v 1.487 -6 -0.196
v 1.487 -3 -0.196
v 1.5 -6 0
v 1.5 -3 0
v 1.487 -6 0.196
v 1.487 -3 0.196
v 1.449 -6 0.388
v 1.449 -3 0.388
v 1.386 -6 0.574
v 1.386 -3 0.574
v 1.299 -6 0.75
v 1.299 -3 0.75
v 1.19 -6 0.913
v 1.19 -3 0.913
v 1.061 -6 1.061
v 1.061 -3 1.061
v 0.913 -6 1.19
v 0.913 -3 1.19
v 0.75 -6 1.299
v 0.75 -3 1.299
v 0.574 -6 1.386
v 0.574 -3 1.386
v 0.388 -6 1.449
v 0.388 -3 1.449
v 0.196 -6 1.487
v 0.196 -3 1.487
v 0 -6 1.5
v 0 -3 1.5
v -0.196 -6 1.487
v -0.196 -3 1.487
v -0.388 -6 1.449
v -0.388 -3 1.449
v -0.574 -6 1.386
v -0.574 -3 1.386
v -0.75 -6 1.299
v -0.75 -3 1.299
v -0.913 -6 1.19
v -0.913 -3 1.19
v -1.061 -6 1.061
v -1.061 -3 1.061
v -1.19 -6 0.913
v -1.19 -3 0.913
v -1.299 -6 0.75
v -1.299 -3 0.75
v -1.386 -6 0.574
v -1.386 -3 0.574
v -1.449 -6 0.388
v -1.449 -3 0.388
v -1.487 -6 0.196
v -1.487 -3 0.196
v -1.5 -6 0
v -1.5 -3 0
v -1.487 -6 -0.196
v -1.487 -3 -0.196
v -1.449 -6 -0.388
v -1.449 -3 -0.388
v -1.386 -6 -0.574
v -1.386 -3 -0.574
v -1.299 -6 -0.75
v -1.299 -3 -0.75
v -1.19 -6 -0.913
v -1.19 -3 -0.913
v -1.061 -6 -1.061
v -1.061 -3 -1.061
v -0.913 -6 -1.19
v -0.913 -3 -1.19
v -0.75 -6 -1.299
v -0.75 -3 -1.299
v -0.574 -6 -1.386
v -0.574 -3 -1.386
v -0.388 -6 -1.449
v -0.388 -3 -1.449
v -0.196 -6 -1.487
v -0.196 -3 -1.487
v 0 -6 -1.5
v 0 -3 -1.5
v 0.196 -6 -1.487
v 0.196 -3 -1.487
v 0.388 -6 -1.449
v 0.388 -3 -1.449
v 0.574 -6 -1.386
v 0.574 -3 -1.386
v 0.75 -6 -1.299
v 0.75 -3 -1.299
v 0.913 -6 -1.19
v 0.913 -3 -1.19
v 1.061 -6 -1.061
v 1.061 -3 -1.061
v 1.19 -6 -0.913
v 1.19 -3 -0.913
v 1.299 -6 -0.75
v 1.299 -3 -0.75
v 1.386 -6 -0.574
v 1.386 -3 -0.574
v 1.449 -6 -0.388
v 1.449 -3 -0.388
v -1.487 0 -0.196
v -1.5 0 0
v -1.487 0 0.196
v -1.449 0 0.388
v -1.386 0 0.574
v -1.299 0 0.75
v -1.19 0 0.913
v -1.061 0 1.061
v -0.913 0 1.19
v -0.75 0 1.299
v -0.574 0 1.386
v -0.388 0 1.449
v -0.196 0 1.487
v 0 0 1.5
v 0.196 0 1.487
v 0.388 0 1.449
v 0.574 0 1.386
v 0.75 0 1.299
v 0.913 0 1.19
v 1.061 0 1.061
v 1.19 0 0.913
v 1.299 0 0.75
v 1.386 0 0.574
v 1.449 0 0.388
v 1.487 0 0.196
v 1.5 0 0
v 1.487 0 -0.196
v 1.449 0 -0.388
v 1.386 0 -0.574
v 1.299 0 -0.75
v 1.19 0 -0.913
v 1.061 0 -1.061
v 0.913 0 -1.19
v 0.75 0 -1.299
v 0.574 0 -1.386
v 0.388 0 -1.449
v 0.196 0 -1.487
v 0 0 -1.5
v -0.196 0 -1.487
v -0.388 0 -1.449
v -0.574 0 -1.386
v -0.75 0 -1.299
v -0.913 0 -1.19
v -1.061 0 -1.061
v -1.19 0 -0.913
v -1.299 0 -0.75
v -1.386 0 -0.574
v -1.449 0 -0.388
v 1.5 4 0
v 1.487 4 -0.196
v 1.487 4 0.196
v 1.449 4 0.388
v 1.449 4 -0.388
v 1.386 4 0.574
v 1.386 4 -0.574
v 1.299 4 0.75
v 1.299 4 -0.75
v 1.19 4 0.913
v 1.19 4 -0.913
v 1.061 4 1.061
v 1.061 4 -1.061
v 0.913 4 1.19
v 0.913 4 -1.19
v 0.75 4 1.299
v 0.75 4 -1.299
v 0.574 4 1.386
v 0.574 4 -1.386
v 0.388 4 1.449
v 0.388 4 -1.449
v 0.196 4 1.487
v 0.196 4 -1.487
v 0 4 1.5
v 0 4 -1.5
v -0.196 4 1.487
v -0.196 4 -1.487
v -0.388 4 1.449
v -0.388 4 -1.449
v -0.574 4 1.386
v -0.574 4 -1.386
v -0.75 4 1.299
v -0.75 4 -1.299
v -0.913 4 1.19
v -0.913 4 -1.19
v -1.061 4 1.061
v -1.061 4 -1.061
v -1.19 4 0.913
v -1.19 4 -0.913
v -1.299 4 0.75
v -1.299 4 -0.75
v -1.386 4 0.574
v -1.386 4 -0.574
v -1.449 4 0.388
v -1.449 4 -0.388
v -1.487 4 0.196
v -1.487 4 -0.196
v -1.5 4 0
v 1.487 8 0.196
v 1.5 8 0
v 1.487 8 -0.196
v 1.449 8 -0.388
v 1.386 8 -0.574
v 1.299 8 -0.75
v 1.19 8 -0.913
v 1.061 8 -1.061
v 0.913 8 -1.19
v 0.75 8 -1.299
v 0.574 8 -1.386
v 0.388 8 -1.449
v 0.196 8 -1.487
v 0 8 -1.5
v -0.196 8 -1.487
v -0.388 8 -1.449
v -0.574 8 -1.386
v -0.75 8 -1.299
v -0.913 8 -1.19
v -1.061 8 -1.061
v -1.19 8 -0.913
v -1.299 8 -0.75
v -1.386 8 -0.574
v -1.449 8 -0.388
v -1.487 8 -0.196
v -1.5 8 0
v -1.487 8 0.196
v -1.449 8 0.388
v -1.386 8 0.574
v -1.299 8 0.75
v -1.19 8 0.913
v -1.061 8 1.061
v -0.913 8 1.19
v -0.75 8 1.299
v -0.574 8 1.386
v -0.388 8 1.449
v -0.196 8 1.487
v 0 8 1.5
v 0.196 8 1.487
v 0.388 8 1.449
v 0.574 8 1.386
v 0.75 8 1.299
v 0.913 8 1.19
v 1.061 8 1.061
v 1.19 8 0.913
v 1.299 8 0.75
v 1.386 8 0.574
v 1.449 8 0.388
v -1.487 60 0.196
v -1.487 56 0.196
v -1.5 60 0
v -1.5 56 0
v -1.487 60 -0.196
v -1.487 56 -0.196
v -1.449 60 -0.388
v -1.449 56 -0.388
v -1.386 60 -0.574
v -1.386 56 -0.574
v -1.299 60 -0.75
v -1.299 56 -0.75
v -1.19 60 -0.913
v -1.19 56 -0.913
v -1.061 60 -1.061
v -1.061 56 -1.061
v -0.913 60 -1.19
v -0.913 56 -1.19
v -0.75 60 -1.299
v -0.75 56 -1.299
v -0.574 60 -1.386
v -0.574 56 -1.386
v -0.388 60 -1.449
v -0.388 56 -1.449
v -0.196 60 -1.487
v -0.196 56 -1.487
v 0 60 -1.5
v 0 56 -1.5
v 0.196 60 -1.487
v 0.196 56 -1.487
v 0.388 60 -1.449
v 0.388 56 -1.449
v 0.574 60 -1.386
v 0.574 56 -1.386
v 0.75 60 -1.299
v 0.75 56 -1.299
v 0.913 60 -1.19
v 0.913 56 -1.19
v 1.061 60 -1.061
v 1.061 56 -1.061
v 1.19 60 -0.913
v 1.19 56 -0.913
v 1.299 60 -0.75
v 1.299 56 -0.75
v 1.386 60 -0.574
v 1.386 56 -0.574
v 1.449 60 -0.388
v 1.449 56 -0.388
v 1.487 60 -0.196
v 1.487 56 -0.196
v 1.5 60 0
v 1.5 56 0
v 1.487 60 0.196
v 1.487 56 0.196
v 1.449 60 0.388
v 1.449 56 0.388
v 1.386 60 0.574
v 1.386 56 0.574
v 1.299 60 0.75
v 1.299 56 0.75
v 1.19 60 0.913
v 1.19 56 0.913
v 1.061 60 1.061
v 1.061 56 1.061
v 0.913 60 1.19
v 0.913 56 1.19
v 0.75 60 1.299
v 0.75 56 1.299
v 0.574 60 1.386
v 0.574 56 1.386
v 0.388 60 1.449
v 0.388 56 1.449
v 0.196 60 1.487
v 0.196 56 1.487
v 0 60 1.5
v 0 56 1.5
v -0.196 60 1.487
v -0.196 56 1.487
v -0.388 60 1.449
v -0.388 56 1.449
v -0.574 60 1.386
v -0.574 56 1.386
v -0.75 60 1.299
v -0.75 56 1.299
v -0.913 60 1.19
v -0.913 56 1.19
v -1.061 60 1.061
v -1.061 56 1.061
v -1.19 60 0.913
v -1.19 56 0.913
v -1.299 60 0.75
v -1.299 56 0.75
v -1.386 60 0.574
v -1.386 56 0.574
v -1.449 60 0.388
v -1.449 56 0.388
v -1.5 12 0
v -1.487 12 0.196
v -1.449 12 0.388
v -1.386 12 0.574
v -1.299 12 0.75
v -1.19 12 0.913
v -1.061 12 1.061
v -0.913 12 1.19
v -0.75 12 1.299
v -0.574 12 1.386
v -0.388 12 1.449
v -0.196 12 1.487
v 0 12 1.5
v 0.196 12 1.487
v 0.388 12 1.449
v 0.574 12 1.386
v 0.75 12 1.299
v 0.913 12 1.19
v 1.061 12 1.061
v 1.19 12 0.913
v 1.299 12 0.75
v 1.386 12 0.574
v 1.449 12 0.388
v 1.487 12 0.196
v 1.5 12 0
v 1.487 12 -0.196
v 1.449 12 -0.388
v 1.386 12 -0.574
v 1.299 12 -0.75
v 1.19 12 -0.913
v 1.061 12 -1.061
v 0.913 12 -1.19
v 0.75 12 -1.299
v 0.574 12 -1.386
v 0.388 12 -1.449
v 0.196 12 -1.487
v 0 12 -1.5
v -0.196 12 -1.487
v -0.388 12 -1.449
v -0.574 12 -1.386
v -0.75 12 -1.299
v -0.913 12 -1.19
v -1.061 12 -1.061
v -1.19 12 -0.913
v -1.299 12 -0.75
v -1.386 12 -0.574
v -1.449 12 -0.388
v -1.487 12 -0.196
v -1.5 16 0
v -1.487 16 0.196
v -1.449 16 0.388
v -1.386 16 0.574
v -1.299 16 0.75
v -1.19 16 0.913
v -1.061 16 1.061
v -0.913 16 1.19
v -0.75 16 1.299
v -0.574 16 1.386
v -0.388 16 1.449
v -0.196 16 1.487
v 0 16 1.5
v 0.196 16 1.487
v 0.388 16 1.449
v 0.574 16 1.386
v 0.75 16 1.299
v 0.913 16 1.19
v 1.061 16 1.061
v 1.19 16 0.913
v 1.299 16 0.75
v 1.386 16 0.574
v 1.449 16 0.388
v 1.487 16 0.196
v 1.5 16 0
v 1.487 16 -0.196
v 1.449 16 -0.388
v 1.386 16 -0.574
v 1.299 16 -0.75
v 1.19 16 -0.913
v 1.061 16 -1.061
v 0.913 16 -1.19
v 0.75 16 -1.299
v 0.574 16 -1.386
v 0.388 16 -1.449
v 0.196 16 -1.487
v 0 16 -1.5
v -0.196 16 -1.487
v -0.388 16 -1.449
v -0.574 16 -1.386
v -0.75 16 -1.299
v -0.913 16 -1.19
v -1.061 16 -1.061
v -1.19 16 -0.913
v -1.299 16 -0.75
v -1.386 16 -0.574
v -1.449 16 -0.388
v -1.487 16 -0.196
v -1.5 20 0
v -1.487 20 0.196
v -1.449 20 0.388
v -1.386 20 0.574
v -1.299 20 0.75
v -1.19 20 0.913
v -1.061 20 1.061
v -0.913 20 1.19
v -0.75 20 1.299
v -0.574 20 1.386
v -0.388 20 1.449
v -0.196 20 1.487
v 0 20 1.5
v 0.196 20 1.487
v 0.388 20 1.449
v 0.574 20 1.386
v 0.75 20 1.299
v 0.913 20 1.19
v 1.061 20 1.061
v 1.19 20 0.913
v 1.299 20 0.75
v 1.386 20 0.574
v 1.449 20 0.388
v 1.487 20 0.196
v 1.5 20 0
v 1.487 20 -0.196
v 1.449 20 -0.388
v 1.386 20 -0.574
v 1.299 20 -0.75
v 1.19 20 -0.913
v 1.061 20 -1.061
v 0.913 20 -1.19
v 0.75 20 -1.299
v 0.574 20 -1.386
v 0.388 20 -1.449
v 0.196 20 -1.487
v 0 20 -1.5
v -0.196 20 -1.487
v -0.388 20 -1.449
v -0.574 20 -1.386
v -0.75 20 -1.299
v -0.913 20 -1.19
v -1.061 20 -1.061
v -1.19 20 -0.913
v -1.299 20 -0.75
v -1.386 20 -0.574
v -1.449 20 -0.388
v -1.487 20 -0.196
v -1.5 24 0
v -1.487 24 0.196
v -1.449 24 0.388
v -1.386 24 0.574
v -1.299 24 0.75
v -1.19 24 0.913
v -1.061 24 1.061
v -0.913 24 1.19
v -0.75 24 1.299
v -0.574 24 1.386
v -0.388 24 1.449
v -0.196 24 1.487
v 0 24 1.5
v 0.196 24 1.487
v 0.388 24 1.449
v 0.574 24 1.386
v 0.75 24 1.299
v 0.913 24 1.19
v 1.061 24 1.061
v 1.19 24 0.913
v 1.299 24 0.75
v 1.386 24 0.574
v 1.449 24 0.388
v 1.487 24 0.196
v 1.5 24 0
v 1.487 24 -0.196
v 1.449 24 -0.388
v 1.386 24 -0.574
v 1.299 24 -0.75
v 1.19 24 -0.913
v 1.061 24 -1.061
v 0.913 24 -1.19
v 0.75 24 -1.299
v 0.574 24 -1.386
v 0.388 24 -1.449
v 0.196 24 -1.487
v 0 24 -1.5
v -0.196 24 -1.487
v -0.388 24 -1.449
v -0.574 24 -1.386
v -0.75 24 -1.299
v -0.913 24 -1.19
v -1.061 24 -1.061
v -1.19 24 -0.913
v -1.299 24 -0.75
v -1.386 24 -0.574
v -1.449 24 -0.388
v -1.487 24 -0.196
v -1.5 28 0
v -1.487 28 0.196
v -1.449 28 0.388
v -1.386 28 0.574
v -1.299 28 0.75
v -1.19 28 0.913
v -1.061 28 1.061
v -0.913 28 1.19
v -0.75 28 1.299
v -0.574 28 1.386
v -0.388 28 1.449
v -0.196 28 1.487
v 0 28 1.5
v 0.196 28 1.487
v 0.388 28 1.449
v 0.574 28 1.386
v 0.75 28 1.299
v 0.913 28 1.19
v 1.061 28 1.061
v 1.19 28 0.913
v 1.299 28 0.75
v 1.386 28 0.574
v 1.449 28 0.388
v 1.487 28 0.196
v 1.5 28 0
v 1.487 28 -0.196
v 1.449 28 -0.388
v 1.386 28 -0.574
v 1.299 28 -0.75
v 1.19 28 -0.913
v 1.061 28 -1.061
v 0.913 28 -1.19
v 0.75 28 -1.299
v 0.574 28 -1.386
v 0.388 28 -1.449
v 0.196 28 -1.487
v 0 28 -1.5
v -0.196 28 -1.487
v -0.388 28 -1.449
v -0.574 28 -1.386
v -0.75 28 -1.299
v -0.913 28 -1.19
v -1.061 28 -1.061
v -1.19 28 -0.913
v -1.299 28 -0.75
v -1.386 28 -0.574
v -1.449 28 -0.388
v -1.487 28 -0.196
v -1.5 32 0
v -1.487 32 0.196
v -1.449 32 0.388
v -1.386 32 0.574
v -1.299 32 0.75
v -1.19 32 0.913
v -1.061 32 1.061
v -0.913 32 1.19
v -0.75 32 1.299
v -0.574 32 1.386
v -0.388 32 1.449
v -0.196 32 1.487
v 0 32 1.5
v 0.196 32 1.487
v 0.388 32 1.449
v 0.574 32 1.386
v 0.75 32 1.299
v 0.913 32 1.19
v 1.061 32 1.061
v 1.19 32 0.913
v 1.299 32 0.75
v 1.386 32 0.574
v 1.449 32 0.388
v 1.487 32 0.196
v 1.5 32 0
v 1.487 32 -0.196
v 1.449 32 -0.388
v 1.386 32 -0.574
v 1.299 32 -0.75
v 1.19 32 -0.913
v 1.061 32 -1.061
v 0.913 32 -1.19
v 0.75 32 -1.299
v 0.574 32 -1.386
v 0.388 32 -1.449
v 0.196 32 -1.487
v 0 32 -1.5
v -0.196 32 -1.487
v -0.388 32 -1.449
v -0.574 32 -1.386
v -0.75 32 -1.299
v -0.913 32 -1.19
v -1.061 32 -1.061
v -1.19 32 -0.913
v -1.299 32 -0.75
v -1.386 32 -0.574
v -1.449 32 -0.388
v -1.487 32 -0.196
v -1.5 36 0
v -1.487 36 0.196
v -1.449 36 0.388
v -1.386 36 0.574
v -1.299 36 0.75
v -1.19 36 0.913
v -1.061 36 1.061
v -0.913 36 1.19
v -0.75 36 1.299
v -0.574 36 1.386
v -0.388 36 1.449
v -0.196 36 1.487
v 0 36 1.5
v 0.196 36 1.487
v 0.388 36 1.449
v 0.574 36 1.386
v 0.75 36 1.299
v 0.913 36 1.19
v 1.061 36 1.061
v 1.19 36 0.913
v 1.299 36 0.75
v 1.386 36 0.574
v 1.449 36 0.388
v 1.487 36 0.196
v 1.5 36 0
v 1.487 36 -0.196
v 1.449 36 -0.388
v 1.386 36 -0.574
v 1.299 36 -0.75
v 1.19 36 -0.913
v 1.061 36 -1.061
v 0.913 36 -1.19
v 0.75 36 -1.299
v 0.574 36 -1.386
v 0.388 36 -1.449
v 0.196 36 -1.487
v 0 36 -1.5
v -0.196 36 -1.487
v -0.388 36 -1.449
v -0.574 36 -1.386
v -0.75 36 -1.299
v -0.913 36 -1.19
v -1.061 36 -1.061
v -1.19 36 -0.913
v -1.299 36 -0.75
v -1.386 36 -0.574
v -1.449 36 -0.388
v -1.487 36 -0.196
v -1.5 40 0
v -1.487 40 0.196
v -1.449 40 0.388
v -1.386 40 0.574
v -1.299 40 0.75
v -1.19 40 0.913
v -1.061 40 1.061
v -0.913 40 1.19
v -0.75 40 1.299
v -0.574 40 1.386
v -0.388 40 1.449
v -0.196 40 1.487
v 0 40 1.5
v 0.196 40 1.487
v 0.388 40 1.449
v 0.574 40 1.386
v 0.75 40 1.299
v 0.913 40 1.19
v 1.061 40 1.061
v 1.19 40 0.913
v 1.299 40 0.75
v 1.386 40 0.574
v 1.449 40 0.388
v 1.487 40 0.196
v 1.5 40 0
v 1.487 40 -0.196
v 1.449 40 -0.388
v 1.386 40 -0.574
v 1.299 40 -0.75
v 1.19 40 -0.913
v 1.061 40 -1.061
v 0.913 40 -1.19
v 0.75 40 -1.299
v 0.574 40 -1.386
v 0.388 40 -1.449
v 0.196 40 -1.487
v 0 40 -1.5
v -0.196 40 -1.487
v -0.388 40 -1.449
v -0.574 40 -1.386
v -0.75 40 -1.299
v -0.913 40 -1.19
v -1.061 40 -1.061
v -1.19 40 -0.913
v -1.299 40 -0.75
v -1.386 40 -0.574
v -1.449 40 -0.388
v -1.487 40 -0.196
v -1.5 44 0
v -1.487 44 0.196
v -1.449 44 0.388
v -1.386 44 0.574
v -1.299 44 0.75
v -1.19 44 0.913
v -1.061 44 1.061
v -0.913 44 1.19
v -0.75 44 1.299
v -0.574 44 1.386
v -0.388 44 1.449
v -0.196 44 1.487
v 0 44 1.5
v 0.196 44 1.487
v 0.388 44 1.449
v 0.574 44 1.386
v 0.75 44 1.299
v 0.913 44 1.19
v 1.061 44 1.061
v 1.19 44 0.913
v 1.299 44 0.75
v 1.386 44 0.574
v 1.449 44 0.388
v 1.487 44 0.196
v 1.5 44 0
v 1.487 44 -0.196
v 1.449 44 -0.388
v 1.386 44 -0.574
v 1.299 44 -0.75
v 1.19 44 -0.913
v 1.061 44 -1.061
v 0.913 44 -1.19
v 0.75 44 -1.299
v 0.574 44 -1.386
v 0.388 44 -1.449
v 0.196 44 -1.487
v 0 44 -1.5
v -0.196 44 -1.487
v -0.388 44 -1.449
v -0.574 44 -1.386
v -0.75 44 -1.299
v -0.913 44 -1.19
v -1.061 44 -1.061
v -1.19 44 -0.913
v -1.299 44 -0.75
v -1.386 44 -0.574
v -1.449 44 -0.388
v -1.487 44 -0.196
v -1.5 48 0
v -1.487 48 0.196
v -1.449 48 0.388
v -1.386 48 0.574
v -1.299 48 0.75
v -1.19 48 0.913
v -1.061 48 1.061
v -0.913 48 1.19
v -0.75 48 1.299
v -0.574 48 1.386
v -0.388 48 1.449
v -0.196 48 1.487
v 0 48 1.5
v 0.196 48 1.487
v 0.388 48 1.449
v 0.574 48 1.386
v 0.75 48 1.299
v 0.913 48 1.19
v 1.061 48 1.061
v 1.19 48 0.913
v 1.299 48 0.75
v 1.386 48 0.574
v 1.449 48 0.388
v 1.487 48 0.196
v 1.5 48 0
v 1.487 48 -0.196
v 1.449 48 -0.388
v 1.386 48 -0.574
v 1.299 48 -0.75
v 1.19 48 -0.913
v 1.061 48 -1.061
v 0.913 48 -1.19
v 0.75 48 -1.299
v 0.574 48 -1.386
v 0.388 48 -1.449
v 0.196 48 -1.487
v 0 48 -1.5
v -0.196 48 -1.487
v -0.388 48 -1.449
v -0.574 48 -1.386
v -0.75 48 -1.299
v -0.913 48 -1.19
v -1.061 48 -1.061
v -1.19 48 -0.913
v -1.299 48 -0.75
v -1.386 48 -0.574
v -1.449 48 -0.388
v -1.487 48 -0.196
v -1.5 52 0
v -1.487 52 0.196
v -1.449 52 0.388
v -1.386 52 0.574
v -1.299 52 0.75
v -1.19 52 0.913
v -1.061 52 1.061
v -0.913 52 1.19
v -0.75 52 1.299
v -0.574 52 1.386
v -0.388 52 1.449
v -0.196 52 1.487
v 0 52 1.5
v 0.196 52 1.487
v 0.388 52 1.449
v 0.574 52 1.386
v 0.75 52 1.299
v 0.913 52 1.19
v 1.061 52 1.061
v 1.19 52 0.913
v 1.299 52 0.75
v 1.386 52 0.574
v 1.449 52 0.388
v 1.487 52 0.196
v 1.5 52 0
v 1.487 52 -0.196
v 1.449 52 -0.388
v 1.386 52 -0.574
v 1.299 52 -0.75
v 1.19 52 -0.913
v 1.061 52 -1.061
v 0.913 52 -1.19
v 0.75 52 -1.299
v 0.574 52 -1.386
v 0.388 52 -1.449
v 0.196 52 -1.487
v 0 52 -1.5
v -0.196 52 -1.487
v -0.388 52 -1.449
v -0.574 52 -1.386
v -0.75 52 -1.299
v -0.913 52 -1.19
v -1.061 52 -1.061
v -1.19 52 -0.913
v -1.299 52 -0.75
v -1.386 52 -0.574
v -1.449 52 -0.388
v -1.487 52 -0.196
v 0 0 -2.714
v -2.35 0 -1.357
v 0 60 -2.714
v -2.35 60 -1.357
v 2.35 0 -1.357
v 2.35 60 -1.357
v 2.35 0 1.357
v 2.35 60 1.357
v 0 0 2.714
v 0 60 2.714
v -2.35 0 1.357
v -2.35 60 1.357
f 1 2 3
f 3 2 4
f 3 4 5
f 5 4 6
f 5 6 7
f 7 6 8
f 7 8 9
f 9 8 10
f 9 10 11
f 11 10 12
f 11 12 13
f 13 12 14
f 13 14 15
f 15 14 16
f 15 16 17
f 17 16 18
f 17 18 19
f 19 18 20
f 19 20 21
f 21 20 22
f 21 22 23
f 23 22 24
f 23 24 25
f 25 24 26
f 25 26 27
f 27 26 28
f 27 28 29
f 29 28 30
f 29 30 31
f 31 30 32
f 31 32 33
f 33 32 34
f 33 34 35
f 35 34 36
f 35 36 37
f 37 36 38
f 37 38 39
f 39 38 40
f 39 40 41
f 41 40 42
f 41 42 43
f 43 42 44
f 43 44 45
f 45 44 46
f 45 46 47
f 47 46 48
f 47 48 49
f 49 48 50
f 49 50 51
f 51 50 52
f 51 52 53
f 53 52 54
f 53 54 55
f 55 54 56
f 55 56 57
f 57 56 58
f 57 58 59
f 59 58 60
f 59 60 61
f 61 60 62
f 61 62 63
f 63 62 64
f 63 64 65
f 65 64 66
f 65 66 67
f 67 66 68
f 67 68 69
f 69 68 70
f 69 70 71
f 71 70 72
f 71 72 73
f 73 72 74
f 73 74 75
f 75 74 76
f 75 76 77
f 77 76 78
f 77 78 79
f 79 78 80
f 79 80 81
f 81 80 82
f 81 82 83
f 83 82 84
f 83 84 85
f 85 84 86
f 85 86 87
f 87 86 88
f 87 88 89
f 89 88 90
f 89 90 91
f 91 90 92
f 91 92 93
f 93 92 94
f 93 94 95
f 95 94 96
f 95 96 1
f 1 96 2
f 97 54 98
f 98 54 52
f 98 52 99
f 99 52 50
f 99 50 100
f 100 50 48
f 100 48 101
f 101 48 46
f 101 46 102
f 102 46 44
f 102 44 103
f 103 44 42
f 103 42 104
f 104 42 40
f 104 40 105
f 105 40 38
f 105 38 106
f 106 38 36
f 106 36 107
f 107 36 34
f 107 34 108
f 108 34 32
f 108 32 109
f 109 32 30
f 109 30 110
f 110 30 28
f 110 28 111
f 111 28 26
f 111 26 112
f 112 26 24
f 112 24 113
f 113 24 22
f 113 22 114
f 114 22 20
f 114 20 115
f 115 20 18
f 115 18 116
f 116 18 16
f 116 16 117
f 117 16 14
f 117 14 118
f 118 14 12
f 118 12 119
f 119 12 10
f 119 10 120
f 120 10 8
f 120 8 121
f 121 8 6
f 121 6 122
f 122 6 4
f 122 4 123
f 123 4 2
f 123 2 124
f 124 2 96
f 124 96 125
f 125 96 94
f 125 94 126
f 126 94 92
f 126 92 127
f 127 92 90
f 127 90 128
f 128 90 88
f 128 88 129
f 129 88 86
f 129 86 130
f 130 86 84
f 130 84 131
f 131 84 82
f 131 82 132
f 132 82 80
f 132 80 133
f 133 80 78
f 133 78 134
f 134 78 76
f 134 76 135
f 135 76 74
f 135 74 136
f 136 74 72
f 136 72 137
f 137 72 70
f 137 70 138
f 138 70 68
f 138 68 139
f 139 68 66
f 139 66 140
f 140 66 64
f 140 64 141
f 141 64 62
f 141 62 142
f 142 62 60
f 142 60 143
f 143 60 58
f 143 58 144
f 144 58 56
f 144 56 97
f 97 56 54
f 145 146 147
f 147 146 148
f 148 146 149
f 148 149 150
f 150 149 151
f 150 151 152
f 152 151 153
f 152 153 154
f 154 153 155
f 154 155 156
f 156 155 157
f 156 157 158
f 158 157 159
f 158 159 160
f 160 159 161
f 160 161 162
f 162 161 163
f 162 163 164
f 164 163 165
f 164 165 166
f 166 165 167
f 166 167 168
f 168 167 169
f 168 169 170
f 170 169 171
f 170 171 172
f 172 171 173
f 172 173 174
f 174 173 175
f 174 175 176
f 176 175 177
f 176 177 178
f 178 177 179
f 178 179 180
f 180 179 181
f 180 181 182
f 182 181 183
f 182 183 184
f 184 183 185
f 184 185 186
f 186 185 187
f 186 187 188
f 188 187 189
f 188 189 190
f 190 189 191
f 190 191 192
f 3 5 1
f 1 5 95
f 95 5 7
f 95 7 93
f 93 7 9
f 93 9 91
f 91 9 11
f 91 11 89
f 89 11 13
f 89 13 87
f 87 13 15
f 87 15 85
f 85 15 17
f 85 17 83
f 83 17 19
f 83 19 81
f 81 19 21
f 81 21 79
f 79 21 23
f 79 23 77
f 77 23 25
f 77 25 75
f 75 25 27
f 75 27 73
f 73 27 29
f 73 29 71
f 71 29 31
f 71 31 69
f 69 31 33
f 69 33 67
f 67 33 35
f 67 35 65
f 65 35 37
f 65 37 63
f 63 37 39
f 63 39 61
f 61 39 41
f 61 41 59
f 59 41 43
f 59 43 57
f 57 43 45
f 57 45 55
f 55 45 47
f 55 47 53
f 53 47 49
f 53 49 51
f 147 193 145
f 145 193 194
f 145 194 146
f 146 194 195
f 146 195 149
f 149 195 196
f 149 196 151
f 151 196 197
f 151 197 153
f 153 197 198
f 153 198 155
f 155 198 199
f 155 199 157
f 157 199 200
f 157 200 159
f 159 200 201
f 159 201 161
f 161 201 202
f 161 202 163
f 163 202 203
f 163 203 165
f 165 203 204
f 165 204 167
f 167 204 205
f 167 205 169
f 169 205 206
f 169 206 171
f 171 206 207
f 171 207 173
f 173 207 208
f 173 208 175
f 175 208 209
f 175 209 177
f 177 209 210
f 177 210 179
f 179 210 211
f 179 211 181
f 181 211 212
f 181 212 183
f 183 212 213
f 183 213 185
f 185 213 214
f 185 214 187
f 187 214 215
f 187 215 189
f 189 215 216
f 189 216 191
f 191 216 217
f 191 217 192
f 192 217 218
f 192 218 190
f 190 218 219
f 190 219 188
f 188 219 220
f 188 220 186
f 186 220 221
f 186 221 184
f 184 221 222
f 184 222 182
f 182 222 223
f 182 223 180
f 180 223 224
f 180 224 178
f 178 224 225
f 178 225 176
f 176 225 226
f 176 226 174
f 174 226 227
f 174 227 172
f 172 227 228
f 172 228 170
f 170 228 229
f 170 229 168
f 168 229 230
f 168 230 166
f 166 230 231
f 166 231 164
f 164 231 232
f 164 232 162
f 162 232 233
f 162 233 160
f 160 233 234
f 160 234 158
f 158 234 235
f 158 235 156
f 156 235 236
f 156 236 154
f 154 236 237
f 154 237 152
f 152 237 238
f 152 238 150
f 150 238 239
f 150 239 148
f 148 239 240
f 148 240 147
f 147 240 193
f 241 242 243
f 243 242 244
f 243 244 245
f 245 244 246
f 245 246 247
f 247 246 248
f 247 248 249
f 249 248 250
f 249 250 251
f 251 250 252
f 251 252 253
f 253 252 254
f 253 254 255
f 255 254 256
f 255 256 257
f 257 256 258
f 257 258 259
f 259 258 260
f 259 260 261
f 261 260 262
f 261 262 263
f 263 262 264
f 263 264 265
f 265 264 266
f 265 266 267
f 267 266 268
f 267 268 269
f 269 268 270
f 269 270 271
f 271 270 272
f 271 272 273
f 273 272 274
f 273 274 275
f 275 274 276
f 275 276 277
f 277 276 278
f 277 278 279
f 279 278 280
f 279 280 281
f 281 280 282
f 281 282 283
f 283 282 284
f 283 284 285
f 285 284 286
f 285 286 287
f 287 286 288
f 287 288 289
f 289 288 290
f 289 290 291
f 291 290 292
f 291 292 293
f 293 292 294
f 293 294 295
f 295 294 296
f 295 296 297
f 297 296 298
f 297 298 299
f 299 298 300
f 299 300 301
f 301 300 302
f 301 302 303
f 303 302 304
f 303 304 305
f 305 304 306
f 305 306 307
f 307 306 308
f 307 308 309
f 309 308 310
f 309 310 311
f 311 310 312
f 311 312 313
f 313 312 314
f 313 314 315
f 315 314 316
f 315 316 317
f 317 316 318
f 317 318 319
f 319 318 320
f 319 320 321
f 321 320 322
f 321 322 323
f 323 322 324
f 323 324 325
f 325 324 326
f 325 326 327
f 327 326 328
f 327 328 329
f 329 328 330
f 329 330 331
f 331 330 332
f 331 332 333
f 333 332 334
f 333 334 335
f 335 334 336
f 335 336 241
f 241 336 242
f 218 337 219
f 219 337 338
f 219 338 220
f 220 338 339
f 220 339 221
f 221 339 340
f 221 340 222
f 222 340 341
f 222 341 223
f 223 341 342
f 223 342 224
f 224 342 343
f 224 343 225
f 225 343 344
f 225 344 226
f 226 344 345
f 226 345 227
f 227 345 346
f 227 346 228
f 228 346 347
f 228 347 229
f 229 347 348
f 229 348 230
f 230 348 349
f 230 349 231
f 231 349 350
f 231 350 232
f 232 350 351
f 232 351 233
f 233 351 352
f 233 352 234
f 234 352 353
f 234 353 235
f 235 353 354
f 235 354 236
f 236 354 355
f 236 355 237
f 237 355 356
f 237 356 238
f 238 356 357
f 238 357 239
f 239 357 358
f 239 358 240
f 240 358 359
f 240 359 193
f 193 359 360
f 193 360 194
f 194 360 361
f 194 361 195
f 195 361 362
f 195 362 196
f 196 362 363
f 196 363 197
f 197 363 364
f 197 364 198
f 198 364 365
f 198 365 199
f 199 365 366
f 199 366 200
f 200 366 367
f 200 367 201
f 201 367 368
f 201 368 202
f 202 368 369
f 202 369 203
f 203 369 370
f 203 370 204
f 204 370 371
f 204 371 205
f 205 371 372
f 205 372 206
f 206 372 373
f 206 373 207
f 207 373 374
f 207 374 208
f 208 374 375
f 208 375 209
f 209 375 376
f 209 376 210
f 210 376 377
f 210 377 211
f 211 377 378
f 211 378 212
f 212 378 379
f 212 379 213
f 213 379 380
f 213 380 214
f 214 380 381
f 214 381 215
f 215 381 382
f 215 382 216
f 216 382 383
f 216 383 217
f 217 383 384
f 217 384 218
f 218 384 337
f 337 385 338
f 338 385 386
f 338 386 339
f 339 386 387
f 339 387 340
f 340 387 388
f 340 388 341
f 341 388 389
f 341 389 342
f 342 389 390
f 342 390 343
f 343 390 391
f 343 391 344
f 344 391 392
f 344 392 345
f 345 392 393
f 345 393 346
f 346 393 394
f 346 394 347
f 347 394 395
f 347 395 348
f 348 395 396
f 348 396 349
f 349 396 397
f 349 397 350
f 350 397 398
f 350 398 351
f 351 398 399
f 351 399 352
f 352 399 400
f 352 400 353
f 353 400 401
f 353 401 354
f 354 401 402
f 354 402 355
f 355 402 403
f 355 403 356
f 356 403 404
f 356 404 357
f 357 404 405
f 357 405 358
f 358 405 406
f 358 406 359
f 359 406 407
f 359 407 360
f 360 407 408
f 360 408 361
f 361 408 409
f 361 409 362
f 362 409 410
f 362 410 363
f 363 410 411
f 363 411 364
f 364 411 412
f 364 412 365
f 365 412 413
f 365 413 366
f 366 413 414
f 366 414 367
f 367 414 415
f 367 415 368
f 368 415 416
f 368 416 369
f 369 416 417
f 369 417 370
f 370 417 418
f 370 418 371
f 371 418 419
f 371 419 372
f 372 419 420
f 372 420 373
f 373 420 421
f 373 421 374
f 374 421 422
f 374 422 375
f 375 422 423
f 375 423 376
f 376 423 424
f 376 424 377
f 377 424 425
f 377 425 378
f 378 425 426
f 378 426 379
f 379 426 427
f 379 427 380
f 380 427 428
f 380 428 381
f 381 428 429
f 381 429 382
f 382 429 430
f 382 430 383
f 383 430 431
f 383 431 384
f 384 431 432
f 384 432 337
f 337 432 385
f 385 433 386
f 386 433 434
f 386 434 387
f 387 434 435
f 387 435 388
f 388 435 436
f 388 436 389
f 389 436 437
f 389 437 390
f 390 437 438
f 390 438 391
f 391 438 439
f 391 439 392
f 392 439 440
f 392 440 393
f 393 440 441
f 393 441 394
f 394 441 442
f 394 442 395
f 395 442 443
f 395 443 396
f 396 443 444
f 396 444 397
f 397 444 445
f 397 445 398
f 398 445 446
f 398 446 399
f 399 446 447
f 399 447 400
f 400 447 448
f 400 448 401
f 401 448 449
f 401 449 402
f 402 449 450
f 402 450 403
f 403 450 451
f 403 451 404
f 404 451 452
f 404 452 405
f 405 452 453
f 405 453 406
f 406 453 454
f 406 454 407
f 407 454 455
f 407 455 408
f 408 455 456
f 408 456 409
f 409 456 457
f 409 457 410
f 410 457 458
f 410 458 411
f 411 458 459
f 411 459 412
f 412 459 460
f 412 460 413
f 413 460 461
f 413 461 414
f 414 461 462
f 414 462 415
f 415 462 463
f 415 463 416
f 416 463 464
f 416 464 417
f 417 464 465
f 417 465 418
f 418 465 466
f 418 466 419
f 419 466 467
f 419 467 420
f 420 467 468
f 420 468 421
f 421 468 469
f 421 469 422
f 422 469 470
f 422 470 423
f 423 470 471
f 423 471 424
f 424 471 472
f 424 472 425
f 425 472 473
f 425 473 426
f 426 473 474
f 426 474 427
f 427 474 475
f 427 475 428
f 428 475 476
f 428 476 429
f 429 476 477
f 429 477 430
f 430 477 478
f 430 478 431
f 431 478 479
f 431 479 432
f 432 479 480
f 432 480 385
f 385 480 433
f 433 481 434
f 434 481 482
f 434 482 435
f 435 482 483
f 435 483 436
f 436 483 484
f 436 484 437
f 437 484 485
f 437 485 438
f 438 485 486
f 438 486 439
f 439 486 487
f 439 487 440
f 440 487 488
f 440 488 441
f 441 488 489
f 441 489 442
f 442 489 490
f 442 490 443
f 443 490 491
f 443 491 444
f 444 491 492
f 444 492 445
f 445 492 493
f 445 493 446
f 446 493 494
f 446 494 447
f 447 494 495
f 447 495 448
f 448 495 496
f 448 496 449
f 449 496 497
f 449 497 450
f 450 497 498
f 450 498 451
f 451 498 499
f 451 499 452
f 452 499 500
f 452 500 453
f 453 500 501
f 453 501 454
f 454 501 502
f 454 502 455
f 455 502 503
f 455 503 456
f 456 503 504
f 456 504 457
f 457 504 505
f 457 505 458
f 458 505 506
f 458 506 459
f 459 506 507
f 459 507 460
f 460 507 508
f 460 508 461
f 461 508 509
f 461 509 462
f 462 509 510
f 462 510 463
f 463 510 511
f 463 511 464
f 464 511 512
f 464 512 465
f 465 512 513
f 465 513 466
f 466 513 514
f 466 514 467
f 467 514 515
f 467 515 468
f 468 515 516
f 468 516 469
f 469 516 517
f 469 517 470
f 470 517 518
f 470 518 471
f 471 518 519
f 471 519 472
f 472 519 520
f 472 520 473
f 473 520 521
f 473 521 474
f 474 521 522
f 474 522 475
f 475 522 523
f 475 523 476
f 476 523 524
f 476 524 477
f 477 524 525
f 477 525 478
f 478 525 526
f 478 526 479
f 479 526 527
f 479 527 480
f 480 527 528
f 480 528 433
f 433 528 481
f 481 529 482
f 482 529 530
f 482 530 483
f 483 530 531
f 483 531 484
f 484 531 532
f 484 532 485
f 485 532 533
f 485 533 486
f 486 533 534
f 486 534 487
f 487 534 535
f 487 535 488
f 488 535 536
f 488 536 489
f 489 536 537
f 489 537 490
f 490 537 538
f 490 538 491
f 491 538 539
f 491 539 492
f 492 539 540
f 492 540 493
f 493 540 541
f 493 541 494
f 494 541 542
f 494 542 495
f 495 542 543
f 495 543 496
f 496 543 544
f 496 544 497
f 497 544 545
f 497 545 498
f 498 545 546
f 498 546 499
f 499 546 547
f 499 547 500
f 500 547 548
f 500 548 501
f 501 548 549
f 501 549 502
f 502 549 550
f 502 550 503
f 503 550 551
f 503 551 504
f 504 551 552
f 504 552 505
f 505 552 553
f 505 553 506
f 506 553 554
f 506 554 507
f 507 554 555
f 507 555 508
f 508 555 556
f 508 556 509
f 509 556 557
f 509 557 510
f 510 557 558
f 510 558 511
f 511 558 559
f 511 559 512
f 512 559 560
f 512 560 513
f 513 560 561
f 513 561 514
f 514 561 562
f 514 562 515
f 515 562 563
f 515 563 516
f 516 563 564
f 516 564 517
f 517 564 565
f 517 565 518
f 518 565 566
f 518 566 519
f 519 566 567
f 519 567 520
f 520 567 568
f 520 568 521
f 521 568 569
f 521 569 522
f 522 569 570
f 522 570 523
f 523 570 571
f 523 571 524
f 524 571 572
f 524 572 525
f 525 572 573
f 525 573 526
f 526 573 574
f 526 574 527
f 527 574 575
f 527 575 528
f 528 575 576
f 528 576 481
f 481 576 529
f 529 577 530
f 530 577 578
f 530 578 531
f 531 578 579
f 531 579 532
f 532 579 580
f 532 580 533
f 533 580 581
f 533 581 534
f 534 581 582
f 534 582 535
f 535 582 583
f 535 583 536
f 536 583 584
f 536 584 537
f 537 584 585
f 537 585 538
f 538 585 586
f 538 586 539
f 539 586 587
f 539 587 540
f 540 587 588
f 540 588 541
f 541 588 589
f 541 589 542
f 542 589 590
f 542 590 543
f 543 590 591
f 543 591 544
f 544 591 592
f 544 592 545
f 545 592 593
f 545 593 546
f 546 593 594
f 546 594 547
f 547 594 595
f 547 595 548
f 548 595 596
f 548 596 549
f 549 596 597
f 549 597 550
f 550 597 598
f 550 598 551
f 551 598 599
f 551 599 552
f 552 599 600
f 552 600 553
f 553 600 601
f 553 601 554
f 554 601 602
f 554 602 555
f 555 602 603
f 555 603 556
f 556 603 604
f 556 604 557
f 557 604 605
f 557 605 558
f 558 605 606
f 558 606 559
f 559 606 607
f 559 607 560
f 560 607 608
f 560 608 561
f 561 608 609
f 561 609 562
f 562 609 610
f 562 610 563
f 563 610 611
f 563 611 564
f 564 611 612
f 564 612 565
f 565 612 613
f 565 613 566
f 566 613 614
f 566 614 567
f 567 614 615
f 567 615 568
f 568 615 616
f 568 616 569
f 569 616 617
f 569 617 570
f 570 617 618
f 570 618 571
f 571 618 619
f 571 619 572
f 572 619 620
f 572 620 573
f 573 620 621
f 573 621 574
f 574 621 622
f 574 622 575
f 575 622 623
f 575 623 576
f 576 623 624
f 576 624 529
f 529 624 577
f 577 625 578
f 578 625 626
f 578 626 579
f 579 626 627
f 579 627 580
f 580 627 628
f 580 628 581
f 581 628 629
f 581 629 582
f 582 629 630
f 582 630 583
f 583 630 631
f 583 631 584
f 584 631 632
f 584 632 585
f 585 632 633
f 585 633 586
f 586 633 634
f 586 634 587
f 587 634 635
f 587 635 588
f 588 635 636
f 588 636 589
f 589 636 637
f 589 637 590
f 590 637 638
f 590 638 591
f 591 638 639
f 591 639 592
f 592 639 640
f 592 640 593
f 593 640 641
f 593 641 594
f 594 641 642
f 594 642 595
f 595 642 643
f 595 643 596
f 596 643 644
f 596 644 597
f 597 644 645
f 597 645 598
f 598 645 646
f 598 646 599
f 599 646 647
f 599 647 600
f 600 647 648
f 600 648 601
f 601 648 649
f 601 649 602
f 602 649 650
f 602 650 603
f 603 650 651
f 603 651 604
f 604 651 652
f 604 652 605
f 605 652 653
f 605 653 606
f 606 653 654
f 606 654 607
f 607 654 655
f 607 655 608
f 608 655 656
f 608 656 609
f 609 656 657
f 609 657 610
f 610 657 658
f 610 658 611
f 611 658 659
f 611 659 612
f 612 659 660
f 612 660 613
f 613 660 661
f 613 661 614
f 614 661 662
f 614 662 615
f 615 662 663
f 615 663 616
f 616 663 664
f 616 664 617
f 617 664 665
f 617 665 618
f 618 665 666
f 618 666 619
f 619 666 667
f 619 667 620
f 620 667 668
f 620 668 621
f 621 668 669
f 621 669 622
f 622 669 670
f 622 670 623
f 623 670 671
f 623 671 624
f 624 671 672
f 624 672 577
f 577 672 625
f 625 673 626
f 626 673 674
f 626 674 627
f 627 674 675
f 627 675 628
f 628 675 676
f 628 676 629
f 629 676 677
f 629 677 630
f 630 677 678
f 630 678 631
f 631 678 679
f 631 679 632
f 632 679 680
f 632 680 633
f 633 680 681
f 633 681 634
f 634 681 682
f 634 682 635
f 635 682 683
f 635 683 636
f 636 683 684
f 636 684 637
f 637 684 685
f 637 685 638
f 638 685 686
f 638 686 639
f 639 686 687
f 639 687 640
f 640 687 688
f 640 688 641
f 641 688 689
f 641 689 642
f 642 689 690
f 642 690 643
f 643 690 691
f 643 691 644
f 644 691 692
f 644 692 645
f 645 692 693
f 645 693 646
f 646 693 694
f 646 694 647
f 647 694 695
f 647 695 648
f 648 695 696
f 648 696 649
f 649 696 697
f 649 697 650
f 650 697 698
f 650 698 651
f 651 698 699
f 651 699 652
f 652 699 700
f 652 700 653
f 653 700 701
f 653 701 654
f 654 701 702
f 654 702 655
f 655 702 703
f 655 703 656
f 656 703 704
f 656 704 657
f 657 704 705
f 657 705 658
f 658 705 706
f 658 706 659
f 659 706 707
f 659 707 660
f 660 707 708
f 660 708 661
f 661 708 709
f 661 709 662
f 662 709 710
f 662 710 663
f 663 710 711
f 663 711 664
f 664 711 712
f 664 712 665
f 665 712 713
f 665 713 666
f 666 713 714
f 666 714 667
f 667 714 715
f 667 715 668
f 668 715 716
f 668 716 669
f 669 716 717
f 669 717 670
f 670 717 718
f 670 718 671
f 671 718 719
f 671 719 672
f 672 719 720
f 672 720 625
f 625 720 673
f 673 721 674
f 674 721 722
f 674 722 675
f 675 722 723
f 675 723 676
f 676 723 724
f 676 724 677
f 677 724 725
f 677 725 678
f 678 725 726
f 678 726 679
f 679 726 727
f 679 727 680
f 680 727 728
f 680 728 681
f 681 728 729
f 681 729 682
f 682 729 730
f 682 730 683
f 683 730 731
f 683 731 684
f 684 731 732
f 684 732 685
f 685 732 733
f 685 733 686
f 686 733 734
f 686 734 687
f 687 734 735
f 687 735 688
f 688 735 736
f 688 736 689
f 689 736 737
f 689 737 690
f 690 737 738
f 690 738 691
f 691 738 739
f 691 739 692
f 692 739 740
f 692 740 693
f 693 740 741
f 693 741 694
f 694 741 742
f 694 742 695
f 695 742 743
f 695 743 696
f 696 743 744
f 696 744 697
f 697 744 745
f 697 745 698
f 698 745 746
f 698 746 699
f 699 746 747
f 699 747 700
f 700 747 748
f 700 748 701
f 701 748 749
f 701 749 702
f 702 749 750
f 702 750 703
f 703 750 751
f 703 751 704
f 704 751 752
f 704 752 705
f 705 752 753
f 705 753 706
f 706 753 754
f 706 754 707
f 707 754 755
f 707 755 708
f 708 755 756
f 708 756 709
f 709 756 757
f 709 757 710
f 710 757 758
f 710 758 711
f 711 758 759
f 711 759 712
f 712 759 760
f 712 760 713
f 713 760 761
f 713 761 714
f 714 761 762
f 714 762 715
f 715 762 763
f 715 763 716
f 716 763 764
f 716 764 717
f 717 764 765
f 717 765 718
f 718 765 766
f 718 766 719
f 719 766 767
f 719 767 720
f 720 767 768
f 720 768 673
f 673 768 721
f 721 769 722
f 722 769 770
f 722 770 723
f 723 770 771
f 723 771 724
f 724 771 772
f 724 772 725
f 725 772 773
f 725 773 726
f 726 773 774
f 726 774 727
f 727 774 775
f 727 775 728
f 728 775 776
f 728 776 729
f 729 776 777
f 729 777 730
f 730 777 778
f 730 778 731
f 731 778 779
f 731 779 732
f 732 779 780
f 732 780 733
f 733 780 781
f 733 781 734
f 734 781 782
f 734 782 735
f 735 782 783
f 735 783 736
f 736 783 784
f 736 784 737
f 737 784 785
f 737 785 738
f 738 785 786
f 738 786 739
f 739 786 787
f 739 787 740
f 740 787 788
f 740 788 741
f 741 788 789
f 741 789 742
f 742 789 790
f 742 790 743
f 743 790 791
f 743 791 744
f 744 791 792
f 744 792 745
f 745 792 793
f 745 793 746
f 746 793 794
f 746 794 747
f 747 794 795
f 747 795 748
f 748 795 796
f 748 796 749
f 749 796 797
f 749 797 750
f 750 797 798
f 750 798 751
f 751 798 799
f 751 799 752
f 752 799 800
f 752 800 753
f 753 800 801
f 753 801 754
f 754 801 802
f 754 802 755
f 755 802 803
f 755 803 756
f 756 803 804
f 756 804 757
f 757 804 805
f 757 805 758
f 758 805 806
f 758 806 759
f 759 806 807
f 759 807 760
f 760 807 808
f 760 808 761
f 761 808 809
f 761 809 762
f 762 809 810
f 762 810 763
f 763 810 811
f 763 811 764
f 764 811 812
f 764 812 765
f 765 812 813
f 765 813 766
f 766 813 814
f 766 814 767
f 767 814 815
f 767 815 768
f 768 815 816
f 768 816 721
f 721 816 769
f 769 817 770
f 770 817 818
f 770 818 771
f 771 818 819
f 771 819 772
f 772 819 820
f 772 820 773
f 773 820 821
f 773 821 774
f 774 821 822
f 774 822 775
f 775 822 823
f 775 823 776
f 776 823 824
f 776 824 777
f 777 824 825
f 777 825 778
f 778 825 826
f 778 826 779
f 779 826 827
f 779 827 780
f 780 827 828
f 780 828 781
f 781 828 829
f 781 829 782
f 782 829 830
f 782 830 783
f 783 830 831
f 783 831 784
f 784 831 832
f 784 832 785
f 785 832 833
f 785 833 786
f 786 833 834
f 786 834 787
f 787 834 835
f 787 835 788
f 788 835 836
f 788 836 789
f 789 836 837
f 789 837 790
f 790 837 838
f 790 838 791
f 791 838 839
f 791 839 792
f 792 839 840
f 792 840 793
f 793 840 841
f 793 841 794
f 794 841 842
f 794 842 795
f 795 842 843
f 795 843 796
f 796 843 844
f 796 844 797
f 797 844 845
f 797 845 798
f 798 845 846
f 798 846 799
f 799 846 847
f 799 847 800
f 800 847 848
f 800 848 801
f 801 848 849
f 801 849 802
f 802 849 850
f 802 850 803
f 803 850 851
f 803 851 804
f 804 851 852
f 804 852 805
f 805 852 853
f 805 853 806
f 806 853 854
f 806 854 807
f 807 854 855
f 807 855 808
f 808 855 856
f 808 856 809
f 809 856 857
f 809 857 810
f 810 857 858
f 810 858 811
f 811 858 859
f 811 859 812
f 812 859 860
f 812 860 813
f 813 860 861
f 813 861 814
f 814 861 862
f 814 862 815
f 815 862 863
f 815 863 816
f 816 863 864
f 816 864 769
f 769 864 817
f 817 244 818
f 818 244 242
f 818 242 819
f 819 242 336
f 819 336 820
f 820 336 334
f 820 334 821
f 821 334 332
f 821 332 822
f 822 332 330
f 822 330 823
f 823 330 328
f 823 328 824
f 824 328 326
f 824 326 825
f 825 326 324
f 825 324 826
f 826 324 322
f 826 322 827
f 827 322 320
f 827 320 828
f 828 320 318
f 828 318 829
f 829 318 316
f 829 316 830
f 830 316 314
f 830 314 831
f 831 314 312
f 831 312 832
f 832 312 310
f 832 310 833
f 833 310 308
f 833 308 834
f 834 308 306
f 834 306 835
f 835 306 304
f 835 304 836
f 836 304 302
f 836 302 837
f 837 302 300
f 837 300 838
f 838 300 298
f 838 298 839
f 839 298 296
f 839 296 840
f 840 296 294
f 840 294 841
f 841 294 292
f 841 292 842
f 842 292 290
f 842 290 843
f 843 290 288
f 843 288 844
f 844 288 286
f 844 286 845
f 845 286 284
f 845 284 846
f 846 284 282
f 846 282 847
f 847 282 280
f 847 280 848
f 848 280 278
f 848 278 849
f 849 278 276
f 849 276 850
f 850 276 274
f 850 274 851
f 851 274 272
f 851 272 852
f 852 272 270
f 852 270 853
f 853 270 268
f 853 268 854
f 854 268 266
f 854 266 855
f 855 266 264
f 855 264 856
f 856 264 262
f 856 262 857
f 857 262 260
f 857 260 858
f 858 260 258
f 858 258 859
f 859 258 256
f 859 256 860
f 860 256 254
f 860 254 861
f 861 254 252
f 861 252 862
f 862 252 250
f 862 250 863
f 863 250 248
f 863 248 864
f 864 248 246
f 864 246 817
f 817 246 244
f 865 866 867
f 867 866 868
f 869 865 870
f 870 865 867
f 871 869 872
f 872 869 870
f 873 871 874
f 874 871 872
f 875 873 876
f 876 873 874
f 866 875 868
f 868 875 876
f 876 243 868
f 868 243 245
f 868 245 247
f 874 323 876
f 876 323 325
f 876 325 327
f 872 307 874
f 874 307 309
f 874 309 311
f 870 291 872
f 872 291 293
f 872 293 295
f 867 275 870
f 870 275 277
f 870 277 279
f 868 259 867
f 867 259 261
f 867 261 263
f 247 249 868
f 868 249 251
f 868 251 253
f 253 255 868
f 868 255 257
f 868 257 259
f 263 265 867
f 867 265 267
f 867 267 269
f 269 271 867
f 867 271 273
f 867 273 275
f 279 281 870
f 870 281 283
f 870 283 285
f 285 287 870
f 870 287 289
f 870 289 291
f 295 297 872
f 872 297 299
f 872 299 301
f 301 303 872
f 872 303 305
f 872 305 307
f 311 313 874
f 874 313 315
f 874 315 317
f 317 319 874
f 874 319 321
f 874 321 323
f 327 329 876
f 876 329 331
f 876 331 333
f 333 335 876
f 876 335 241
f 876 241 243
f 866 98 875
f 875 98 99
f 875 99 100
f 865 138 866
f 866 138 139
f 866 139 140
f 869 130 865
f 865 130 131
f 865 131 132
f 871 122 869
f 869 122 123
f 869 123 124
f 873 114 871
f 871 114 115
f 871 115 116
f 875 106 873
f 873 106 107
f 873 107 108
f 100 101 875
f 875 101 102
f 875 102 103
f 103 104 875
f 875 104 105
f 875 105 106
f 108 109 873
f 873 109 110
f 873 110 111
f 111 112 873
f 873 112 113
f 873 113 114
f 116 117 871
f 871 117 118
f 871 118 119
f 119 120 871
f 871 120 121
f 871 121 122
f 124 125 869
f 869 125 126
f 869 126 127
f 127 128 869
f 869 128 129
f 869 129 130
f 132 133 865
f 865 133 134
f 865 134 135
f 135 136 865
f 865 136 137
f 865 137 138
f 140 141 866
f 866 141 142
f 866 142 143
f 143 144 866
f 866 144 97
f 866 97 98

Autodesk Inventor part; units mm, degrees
ref_plane "YZ Plane" through (0, 0, 0) normal (1, 0, 0) x (0, 1, 0)
ref_plane "XZ Plane" through (0, 0, 0) normal (0, 1, 0) x (-1, 0, 0)
ref_plane "XY Plane" through (0, 0, 0) normal (0, 0, 1) x (1, 0, 0)
sketch "Sketch1" plane through (0, 0, 0) normal (0, 1, 0) x (-1, 0, 0)
  line L0 (0, -2.7135) -> (-2.35, -1.3568)
  line L1 (-2.35, -1.3568) -> (-2.35, 1.3568)
  line L2 (-2.35, 1.3568) -> (0, 2.7135)
  line L3 (0, 2.7135) -> (2.35, 1.3568)
  line L4 (2.35, 1.3568) -> (2.35, -1.3568)
  line L5 (2.35, -1.3568) -> (0, -2.7135)
  circle A0 centre (0, 0) radius 1.5
  dimension "d1" = 3
  dimension "d4" = 4.7
extrude "Extrusion1" add sketch "Sketch1" along normal blind 60
sketch "Sketch2" plane through (0, 0, 0) normal (0, -1, 0) x (1, 0, 0)
  circle A0 centre (0, 0) radius 1.5 projected
  circle A1 centre (0, 0) radius 1.5
  dimension "d5" = 3
extrude "Extrusion2" add sketch "Sketch2" along normal blind 6 and the other way blind 4
thread "Thread1" size "M3x0.5" class "6g" standard "ANSI Metric M Profile" full length
properties part number "Brass Spacer" material "Brass, Soft Yellow"
